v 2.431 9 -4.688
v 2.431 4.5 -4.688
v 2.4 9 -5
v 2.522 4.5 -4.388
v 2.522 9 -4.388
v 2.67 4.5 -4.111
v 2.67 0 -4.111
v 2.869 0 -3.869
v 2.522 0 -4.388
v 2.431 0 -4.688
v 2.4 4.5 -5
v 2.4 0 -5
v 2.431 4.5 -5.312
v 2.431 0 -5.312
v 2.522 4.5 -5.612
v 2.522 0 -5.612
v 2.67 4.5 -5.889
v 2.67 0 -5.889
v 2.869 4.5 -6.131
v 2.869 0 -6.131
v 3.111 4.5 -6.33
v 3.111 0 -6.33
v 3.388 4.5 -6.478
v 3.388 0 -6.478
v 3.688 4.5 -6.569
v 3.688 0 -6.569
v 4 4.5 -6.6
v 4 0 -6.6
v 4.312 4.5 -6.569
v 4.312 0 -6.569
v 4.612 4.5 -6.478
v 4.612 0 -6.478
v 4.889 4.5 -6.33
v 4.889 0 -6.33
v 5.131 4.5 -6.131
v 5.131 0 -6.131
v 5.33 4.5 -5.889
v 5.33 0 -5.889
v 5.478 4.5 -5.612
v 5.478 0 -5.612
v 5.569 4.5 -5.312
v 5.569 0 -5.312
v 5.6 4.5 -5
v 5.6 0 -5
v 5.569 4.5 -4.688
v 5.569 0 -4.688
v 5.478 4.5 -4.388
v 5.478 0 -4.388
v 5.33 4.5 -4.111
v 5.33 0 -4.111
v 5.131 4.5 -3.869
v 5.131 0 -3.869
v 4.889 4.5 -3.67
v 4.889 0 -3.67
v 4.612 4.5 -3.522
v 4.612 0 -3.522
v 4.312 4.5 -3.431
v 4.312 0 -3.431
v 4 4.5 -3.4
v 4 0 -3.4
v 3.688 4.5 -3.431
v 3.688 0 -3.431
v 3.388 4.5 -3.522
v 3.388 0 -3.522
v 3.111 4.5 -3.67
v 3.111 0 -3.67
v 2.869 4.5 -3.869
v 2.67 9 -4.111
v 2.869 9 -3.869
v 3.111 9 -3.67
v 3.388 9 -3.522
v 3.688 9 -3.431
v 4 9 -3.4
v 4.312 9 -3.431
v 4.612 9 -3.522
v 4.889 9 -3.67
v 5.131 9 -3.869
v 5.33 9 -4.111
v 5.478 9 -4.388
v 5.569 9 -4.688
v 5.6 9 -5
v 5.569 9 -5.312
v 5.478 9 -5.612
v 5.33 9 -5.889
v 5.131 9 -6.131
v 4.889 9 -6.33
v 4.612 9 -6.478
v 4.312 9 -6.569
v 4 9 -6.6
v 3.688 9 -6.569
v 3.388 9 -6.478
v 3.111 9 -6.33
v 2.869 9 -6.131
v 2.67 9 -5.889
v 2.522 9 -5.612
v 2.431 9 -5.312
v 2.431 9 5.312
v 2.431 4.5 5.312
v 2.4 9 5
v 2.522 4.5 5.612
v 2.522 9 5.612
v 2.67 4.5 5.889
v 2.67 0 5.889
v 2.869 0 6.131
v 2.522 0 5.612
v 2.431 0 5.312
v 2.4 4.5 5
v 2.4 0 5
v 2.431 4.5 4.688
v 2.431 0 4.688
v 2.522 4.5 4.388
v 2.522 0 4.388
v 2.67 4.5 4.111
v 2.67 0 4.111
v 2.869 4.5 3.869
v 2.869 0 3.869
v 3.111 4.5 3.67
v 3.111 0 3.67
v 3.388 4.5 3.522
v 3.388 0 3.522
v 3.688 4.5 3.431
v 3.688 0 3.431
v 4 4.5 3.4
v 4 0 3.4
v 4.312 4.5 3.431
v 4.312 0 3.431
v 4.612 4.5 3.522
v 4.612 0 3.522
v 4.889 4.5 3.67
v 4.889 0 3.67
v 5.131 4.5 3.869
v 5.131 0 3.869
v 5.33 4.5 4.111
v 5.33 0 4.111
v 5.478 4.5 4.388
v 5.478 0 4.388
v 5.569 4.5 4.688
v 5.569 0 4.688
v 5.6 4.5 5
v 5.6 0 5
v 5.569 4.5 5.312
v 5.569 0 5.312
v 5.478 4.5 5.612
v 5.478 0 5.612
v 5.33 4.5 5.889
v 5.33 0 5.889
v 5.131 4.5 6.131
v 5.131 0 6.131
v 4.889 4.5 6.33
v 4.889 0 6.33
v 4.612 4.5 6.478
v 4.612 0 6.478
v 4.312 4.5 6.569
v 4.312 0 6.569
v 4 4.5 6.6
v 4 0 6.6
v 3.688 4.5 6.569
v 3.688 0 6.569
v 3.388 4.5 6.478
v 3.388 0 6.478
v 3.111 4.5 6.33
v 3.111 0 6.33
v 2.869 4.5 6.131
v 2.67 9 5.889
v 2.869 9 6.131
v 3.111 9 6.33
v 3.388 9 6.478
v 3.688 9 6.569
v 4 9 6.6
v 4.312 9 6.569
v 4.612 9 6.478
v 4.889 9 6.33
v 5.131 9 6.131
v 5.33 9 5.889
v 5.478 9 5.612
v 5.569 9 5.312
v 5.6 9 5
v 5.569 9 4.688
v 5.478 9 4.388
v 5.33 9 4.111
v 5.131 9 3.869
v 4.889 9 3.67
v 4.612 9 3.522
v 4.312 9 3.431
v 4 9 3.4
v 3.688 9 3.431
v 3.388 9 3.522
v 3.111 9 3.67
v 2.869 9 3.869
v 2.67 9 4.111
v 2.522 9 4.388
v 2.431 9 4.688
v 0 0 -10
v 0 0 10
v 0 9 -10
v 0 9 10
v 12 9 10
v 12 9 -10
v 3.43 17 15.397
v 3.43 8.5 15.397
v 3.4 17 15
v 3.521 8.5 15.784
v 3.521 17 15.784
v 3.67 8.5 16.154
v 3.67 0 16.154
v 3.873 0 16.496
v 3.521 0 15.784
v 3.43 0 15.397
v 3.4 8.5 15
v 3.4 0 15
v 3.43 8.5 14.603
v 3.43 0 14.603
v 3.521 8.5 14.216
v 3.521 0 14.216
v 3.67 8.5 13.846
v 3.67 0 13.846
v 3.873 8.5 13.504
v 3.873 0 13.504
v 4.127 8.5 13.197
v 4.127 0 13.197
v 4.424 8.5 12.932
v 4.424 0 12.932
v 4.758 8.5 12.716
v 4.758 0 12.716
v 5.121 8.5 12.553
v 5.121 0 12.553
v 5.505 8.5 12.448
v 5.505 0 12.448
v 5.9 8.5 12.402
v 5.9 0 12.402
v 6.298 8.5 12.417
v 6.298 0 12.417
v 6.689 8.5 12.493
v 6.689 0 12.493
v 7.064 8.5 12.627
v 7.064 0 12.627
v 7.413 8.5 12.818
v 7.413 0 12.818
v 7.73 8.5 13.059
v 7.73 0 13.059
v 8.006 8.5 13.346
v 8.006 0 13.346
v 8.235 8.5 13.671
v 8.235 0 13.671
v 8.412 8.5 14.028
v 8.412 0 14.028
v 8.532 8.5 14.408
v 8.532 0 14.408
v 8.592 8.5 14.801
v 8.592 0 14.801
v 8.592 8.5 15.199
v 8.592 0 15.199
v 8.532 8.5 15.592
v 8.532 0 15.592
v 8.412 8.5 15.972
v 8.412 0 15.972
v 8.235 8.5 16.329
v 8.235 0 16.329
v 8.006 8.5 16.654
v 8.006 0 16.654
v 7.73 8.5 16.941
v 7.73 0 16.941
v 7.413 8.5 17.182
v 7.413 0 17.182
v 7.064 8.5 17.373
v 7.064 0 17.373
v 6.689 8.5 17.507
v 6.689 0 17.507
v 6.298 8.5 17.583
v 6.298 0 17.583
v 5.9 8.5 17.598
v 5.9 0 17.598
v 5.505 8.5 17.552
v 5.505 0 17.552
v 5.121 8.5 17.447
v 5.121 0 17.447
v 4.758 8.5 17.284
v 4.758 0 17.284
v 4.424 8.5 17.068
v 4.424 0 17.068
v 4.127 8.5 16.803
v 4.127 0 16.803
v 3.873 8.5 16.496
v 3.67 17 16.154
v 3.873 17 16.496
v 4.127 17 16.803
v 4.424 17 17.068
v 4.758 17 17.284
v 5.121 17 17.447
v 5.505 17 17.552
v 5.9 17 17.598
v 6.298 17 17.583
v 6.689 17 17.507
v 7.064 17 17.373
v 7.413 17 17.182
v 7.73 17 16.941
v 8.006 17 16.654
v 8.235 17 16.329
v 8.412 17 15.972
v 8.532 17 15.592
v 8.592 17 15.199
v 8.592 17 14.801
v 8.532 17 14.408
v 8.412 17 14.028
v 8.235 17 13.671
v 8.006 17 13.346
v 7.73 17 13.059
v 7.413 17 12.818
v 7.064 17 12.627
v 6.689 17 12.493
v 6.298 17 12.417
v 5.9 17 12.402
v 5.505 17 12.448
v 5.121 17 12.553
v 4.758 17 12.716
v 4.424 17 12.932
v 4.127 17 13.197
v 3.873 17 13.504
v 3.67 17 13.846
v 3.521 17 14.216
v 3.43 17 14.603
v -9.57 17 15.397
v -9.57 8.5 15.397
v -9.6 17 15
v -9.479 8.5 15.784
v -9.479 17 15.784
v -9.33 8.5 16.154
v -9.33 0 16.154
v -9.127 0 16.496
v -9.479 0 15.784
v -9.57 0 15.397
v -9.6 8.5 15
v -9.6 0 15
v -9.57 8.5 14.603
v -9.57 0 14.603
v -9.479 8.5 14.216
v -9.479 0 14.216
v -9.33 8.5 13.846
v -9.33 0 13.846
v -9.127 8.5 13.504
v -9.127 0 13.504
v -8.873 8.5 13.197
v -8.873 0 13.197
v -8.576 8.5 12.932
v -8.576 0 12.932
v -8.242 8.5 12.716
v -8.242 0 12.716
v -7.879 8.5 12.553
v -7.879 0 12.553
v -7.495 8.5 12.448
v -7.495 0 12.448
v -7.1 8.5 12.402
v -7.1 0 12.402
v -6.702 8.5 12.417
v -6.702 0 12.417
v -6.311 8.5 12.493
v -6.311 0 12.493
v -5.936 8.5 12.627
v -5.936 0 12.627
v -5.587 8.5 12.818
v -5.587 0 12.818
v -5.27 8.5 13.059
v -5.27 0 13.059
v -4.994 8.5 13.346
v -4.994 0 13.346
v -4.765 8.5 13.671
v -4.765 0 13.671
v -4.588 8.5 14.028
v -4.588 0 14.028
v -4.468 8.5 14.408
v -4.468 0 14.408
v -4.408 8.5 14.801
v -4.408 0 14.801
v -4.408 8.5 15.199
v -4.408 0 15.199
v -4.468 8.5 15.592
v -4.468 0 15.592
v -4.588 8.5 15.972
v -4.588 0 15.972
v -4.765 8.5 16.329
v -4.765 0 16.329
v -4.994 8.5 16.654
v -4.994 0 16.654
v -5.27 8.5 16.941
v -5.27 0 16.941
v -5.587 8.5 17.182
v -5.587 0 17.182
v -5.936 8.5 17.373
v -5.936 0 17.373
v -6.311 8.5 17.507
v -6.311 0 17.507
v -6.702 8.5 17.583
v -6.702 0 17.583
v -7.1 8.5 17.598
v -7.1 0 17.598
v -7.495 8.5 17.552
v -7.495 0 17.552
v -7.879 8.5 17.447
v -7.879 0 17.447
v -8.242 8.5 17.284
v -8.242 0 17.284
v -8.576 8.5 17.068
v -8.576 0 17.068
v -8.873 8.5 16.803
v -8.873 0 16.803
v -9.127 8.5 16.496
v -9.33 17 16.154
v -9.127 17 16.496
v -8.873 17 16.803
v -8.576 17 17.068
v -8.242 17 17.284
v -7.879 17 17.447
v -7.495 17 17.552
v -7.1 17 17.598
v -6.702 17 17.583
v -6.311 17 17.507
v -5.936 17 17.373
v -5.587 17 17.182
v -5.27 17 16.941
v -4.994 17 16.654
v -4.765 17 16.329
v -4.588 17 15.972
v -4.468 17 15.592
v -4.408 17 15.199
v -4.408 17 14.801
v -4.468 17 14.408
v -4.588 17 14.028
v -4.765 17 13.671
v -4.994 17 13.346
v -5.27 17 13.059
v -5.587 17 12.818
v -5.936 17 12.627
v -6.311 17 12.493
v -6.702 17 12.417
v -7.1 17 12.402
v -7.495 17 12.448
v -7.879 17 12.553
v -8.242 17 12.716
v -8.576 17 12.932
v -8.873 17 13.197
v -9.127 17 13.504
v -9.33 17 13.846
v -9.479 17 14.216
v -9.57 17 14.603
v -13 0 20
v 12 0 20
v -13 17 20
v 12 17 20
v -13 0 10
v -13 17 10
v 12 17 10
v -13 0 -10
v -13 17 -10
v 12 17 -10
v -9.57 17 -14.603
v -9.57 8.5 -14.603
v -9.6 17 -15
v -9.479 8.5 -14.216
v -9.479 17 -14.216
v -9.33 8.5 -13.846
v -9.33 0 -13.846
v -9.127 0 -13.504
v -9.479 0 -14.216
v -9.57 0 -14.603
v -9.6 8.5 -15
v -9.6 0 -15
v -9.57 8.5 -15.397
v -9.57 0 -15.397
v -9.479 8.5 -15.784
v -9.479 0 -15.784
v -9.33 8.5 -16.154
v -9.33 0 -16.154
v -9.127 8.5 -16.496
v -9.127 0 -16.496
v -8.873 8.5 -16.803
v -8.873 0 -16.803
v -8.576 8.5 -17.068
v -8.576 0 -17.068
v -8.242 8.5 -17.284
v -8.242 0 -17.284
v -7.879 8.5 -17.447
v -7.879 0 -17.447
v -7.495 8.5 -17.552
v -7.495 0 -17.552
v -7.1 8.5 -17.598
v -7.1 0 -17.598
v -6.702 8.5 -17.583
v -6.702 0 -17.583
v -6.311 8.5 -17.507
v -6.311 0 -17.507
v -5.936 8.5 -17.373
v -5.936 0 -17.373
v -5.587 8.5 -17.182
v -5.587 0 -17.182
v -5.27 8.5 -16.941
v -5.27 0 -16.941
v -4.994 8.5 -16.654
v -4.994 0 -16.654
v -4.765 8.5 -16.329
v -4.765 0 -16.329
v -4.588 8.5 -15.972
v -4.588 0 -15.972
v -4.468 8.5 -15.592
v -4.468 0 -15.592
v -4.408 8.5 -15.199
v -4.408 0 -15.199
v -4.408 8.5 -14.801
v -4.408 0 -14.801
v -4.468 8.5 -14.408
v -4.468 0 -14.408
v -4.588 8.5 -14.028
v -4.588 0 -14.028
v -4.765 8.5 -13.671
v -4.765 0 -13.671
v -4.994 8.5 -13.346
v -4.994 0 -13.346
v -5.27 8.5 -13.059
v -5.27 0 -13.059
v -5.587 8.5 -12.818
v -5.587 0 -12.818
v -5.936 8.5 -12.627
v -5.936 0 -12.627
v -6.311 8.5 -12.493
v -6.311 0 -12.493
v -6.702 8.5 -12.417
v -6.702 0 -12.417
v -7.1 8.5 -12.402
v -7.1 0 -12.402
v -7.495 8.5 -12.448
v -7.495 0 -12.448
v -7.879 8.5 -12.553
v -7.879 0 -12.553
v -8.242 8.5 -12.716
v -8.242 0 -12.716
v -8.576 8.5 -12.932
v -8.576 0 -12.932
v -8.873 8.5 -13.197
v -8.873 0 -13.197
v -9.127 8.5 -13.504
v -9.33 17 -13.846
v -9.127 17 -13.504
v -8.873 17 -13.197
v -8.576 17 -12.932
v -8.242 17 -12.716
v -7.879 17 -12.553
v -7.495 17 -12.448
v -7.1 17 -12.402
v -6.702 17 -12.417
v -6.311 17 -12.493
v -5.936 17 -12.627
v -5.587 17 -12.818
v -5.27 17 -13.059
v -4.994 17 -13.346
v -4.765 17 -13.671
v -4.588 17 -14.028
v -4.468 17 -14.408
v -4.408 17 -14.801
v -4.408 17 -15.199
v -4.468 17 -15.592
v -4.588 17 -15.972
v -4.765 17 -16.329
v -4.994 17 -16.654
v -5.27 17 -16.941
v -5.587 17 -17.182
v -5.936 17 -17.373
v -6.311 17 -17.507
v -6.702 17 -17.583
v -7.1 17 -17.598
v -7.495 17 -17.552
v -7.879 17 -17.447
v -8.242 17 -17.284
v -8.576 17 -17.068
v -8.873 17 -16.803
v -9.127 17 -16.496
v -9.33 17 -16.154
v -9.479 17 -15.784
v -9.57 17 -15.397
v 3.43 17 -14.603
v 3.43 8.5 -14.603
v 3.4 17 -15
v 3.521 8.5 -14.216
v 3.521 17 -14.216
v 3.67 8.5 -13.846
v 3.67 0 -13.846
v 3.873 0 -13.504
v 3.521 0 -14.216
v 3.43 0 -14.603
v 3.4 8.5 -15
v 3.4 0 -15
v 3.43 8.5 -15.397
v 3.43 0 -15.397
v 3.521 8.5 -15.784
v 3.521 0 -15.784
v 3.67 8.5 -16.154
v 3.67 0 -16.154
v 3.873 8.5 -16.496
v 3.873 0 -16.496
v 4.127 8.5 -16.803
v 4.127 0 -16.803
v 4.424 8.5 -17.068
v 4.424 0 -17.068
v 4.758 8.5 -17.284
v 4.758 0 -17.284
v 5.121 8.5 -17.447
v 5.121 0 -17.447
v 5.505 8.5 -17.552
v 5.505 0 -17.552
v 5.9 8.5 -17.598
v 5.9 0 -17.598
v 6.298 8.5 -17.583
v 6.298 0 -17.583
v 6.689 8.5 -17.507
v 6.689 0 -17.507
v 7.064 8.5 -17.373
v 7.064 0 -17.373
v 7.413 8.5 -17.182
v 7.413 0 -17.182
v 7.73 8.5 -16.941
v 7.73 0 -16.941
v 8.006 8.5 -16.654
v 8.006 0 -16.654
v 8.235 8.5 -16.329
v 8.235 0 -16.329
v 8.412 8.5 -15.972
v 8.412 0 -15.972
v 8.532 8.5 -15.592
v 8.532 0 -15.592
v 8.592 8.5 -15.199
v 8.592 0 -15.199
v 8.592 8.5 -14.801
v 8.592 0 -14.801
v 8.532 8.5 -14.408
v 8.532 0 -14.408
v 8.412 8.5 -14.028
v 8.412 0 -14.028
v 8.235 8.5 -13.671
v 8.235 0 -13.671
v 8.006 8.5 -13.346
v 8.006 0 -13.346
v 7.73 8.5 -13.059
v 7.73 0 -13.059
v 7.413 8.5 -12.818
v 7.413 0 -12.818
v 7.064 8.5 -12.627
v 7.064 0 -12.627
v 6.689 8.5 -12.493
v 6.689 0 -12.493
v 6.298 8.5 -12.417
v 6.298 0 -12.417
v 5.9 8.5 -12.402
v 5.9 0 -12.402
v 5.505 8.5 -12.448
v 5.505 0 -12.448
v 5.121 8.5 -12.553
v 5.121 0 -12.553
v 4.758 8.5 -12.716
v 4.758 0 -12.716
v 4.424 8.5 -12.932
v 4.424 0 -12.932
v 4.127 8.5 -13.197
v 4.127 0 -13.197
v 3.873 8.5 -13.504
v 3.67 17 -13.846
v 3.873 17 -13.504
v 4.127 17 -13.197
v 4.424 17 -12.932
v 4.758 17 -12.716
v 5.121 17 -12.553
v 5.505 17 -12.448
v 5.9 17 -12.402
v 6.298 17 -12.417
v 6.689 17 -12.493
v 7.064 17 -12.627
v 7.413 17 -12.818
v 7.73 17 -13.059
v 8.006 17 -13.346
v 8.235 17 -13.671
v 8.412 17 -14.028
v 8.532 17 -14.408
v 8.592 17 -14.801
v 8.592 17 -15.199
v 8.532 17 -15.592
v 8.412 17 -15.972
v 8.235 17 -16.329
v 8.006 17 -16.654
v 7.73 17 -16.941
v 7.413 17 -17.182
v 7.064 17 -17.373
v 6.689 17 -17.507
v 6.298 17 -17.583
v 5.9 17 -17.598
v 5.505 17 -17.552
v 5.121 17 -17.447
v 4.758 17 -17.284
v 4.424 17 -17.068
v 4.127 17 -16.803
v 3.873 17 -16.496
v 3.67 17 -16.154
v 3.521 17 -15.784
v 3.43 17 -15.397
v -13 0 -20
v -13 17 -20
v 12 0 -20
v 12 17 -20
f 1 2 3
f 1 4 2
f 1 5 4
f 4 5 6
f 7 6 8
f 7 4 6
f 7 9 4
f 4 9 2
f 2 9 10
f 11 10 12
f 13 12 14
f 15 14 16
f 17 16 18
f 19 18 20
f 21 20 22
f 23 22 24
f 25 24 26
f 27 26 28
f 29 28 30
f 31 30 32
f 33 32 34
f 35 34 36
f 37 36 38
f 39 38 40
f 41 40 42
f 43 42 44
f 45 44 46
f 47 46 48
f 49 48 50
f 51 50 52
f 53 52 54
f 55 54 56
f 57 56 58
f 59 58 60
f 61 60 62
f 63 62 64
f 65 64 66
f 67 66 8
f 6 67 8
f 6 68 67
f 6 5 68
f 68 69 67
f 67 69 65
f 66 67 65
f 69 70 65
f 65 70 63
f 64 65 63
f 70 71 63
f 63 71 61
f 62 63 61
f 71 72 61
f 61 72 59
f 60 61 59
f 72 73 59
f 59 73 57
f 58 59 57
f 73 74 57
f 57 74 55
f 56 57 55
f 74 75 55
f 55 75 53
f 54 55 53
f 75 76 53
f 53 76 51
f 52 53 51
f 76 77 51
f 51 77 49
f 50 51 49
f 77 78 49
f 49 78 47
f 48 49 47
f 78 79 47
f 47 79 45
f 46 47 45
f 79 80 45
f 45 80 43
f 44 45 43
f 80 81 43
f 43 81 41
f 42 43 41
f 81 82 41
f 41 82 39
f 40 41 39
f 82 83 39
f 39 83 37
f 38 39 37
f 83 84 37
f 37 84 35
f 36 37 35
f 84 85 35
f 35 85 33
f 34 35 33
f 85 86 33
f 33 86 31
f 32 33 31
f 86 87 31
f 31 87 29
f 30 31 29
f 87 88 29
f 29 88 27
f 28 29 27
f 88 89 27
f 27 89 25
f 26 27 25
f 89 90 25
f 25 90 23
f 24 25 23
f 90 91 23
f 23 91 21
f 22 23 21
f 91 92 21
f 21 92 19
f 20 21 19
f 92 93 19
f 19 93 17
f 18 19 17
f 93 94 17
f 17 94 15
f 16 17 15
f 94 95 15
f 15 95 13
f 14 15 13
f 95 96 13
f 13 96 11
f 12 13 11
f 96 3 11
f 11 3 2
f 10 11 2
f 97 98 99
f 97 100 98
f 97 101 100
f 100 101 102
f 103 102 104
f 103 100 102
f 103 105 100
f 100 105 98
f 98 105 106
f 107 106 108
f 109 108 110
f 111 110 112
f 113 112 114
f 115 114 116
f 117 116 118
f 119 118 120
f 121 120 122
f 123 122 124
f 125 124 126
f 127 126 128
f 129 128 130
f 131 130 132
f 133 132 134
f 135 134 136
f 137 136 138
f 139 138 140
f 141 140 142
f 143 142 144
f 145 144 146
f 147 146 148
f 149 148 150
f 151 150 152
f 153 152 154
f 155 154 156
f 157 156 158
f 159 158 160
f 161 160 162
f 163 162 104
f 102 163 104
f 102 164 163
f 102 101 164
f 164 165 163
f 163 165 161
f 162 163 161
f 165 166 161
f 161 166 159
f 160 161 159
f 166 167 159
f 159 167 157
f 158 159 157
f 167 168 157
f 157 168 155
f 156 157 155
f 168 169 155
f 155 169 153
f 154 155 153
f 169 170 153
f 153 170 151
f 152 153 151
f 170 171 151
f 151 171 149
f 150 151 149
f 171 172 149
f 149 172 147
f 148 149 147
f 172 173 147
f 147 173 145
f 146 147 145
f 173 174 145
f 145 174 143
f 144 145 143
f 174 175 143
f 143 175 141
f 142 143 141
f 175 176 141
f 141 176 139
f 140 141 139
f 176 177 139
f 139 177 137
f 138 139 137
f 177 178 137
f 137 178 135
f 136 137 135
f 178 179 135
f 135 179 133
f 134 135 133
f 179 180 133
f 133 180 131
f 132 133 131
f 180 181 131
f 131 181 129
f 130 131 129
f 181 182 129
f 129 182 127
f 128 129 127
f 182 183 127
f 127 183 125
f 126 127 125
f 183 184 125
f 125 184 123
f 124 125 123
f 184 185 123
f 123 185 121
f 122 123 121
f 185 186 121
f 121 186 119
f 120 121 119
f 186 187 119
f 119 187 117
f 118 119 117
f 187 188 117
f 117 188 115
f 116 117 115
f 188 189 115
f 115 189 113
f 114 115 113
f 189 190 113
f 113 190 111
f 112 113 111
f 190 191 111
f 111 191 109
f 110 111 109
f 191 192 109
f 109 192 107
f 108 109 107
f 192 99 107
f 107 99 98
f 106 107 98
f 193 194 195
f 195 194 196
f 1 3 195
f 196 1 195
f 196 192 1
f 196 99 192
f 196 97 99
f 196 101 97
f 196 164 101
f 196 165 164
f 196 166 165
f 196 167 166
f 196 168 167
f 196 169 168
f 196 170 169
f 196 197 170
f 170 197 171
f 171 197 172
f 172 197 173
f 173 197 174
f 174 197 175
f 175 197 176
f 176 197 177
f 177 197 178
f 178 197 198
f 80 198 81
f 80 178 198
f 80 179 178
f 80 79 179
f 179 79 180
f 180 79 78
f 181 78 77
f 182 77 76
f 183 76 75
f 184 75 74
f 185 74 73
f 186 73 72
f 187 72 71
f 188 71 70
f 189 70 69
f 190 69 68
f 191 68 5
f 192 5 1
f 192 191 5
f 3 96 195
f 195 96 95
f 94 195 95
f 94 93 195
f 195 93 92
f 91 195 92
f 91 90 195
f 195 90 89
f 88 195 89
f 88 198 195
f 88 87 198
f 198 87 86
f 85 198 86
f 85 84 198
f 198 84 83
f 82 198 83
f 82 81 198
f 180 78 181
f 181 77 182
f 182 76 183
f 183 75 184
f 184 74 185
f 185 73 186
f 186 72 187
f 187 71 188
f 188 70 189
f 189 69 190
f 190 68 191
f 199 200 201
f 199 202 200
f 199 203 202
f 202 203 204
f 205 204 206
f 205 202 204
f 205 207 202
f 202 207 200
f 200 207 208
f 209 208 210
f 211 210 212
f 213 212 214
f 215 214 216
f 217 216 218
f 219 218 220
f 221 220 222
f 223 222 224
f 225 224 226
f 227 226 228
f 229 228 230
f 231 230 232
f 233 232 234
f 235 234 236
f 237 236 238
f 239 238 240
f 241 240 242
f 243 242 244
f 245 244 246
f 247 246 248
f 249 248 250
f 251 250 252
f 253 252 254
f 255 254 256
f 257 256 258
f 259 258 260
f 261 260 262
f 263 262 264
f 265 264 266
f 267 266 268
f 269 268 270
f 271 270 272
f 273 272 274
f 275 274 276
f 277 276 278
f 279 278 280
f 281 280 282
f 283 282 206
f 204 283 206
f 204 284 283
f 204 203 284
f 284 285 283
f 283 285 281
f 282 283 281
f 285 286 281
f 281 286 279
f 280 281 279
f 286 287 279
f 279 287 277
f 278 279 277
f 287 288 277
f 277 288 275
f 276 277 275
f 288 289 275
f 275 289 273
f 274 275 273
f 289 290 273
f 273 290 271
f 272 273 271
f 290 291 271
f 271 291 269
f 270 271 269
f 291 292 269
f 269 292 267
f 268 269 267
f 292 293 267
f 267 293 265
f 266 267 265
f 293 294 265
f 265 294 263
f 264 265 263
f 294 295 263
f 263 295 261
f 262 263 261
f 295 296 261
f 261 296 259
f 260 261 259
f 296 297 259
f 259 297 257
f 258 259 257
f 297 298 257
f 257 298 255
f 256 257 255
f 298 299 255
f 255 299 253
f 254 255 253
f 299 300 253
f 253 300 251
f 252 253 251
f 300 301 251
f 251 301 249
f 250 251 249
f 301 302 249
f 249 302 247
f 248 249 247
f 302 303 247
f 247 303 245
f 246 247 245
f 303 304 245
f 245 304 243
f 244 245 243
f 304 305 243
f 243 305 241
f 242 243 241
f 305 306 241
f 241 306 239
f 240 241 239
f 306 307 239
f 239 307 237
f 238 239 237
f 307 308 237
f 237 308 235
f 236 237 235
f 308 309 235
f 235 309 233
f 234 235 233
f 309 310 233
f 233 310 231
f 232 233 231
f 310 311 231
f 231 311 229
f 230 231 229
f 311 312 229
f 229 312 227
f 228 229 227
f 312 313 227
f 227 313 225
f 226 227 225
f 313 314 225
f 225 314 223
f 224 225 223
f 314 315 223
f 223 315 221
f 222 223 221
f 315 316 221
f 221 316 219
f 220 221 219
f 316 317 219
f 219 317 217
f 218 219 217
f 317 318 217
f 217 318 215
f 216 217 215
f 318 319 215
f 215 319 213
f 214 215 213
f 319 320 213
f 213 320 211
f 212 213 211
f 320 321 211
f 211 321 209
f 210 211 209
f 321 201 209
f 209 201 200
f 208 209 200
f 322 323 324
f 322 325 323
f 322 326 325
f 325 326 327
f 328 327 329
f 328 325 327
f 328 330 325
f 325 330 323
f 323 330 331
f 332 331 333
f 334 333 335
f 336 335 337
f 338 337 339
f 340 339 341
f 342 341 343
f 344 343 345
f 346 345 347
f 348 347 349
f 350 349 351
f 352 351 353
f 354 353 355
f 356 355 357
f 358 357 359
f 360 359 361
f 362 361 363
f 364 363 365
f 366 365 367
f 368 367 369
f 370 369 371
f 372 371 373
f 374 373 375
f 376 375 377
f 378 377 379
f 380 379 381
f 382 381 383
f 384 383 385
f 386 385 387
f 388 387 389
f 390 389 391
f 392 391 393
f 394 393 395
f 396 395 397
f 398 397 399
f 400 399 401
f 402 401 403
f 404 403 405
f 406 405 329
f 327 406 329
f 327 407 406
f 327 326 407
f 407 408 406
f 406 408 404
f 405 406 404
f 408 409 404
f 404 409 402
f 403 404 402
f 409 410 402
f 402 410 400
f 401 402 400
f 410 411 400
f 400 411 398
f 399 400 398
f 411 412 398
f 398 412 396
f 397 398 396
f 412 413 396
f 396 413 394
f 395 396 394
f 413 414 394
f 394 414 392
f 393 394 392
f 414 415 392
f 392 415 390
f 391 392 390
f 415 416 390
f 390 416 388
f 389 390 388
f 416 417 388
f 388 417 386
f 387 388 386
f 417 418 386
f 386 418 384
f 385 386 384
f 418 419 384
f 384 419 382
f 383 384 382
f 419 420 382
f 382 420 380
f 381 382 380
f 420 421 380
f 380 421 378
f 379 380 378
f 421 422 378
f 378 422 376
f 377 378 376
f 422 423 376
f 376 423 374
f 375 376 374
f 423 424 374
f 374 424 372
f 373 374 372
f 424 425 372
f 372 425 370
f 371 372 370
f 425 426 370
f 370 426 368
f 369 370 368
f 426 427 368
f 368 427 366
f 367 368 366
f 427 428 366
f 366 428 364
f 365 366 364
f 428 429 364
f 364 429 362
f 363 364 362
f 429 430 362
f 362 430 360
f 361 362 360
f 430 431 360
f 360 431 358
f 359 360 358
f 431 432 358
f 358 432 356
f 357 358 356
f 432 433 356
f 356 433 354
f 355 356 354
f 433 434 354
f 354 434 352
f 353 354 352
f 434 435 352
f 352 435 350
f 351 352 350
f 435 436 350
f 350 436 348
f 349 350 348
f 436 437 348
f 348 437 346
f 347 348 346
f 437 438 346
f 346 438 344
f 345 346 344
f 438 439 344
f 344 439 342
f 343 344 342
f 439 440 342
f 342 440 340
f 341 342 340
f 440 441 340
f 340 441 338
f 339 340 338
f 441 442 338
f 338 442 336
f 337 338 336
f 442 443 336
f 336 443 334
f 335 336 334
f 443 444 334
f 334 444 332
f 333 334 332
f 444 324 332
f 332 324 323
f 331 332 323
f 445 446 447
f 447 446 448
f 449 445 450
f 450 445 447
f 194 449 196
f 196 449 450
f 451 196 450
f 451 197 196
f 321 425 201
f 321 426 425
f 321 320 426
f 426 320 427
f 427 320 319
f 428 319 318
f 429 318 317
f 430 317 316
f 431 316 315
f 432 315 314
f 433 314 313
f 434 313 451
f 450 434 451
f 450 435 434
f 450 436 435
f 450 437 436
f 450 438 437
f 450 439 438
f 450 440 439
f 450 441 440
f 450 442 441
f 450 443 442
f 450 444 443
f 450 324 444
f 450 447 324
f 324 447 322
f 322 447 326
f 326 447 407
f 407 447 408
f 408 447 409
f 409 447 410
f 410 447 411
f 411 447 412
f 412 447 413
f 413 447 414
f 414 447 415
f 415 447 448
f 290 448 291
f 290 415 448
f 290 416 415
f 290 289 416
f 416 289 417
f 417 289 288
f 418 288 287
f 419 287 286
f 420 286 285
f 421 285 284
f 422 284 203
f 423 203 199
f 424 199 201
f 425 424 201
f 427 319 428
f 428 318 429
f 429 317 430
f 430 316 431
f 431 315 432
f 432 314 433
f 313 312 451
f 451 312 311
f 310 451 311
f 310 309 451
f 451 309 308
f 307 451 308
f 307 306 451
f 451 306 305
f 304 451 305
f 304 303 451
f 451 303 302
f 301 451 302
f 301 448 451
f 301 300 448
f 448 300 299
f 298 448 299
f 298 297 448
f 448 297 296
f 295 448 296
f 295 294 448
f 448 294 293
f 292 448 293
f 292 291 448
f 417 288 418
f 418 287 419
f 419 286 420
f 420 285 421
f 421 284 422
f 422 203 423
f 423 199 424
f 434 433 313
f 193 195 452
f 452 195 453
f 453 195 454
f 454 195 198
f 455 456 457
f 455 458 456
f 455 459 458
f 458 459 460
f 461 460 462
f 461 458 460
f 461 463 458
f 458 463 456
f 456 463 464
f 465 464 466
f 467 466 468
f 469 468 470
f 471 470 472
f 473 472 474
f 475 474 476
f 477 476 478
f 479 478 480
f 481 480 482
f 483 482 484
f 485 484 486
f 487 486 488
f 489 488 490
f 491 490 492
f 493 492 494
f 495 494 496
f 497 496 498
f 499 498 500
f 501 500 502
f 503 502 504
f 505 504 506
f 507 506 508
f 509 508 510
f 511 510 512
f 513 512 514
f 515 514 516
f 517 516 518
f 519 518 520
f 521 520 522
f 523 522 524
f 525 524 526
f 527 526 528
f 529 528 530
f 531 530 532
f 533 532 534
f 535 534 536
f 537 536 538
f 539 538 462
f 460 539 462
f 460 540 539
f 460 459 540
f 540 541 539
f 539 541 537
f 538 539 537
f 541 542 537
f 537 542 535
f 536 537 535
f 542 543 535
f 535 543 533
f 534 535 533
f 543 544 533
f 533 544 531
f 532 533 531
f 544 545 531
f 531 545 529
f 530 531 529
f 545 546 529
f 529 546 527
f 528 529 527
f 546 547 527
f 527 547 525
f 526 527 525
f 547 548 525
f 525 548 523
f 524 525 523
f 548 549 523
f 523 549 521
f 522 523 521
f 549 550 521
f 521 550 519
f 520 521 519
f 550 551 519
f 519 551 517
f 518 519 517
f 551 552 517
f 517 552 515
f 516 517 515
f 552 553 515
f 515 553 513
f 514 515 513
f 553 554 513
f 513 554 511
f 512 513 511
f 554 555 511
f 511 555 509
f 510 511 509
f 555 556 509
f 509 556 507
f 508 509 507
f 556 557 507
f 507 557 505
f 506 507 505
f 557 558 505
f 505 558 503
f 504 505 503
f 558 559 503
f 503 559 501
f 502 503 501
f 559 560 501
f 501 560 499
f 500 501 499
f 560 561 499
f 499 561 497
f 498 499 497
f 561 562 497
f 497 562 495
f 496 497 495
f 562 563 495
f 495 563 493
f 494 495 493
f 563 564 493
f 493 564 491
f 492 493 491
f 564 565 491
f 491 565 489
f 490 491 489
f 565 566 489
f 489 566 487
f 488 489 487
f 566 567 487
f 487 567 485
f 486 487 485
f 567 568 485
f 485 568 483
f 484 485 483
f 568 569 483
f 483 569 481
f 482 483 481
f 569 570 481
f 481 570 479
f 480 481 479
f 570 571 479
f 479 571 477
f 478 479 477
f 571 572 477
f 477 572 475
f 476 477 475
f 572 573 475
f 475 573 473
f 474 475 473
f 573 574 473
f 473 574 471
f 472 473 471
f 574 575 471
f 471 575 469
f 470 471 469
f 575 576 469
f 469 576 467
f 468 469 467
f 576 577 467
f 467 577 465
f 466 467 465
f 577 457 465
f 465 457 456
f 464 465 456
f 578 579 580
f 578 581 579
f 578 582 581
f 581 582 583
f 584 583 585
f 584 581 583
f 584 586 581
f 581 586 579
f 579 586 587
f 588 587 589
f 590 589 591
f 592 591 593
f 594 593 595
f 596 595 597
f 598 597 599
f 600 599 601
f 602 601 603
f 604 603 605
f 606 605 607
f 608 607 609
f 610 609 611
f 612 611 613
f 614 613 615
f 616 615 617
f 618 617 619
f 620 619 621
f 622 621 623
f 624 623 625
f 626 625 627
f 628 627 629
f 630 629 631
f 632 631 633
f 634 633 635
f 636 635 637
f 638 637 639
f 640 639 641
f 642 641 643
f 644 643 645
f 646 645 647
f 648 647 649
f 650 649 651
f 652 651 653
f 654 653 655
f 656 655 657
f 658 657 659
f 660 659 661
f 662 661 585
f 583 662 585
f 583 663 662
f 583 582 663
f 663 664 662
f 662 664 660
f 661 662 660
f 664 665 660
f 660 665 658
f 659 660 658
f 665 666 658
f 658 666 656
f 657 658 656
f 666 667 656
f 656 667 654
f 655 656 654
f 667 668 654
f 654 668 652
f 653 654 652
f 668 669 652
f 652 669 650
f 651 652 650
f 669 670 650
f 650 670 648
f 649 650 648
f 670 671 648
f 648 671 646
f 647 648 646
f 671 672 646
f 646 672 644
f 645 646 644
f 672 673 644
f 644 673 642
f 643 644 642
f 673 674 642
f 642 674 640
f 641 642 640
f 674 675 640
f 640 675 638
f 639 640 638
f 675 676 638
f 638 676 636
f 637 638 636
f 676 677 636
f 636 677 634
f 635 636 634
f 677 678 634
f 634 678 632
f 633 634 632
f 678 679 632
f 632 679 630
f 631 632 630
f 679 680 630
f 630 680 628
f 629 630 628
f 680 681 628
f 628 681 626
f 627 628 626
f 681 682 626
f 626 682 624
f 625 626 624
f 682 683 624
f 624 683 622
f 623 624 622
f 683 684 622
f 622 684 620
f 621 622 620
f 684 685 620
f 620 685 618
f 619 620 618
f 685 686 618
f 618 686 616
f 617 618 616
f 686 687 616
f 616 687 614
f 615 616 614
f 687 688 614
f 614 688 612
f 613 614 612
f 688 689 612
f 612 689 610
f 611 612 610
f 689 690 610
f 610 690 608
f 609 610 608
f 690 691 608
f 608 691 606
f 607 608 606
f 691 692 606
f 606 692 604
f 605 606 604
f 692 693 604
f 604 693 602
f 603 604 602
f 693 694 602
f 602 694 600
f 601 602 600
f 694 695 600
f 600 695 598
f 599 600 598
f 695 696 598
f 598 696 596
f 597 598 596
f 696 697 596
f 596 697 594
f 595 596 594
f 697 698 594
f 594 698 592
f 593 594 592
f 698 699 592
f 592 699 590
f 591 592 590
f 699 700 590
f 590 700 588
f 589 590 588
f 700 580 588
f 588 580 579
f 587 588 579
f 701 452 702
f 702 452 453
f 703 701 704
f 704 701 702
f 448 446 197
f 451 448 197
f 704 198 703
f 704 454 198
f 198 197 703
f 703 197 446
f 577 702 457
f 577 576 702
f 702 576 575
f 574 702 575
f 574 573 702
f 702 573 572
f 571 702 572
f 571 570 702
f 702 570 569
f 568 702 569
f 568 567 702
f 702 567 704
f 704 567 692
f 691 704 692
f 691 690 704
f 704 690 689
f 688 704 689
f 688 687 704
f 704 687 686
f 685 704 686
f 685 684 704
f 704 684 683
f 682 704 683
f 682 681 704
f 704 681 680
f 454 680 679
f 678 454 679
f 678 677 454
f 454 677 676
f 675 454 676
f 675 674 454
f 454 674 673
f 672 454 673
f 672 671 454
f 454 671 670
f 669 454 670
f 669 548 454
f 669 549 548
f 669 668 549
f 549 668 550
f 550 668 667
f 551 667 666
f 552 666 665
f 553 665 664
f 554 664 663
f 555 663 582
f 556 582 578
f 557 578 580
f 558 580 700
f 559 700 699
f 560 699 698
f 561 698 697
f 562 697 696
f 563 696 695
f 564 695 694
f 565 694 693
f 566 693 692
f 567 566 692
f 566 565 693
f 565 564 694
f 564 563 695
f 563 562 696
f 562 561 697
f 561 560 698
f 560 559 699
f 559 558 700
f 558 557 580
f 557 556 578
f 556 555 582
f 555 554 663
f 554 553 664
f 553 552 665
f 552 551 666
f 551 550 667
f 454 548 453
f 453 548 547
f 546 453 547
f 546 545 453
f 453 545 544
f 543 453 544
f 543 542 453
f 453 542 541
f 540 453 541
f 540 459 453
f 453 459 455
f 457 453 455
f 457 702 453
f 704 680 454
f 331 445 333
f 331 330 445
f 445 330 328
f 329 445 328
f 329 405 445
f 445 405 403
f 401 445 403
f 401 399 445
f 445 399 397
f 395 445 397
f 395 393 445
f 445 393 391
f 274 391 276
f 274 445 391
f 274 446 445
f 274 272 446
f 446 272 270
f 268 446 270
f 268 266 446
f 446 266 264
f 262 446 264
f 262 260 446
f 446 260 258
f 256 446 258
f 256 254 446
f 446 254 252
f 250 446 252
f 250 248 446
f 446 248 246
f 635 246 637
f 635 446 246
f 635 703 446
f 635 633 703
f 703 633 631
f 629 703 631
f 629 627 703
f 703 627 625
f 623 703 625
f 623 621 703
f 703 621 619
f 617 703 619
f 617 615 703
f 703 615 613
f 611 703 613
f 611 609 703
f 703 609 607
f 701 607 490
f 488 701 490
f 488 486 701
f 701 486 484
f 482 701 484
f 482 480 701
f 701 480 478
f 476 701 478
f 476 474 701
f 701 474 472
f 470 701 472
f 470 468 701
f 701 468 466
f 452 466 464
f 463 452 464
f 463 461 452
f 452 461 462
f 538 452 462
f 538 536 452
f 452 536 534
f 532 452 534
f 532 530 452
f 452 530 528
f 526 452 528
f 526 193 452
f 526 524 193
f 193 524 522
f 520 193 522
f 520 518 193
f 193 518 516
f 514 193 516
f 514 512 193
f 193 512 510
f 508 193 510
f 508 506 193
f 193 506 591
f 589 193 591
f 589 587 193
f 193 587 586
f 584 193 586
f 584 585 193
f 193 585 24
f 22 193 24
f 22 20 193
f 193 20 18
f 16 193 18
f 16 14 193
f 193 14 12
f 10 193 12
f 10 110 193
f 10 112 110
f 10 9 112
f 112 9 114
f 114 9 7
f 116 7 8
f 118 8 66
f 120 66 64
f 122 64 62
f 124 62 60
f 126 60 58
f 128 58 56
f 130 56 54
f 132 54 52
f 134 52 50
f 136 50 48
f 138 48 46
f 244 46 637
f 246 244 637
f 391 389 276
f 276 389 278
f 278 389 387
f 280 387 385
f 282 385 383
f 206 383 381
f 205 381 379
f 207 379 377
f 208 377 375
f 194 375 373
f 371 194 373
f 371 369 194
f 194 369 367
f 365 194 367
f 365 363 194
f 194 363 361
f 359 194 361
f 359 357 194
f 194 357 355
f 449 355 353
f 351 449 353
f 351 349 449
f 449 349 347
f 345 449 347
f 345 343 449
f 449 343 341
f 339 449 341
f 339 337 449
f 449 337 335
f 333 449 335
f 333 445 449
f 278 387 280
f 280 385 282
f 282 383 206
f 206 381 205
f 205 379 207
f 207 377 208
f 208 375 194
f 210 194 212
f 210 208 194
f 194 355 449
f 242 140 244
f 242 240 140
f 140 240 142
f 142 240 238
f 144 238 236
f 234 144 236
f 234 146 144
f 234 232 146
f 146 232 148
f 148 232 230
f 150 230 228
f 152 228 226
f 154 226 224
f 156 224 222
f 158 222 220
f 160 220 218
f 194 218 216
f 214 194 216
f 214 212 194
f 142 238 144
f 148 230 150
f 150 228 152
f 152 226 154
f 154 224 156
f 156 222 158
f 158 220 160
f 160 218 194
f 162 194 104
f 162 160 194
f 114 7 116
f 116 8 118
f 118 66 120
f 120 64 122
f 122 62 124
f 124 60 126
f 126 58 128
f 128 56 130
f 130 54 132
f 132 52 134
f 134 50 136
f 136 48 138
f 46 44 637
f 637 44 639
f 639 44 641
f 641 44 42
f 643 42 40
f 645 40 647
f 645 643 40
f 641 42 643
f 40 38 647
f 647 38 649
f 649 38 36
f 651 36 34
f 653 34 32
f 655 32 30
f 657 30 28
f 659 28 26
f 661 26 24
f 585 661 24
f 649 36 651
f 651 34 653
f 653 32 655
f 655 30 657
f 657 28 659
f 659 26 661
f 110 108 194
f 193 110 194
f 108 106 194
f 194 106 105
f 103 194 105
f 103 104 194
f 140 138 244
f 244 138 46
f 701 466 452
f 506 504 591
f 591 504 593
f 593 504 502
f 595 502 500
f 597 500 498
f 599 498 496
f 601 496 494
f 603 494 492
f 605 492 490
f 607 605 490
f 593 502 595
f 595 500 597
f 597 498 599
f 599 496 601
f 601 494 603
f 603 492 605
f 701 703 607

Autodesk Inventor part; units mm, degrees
ref_plane "YZ Plane" through (0, 0, 0) normal (1, 0, 0) x (0, 1, 0)
ref_plane "XZ Plane" through (0, 0, 0) normal (0, 1, 0) x (-1, 0, 0)
ref_plane "XY Plane" through (0, 0, 0) normal (0, 0, 1) x (1, 0, 0)
sketch "Sketch1" plane through (0, 0, 0) normal (0, 1, 0) x (-1, 0, 0)
  line L0 (0, 0) -> (0, -10)
  line L1 (0, 0) -> (0, 10)
  line L2 (0, 10) -> (13, 10)
  line L3 (13, 10) -> (13, 20)
  line L4 (13, 20) -> (-12, 20)
  line L5 (0, -10) -> (13, -10)
  line L6 (13, -10) -> (13, -20)
  line L7 (13, -20) -> (-12, -20)
  line L8 (-12, -20) -> (-12, 20)
  line L9 (-12, 15) -> (-6, 15)
  line L10 (13, 15) -> (7, 15)
  line L11 (13, -15) -> (7, -15)
  line L12 (-12, -15) -> (-6, -15)
  circle A0 centre (7, 15) radius 2.6
  circle A1 centre (-6, 15) radius 2.6
  circle A2 centre (-6, -15) radius 2.6
  circle A3 centre (7, -15) radius 2.6
  line L13 (0, 0) -> (-4, 0)
  line L14 (-4, 0) -> (-4, -5)
  line L15 (-4, 0) -> (-4, 5)
  circle A4 centre (-4, 5) radius 1.6
  circle A5 centre (-4, -5) radius 1.6
  line L16 (0, 10) -> (-12, 10)
  line L17 (0, -10) -> (-12, -10)
  line L18 (13, -15) -> (9.6, -15)
  line L19 (-8.6, -15) -> (-12, -15)
  line L20 (13, 15) -> (9.6, 15)
  line L21 (-8.6, 15) -> (-12, 15)
  dimension "d12" = 5.2
  dimension "d13" = 5.2
  dimension "d14" = 5.2
  dimension "d15" = 5.2
  dimension "d0" = 10
  dimension "d1" = 10
  dimension "d2" = 13
  dimension "d3" = 10
  dimension "d4" = 25
  dimension "d5" = 13
  dimension "d6" = 10
  dimension "d7" = 25
  dimension "d8" = 6
  dimension "d9" = 6
  dimension "d10" = 6
  dimension "d11" = 6
  dimension "d16" = 4
  dimension "d17" = 5
  dimension "d18" = 5
  dimension "d19" = 3.2
  dimension "d20" = 3.2
extrude "Extrusion1" add sketch "Sketch1" along normal blind 17 contours L5 L6 L7 L8 L17 | L16 L8 L4 L3 L2
extrude "Extrusion2" add sketch "Sketch1" along normal blind 9 contours L0 L17 L8 L16 L1
properties part number "servo_clip_holder1_final"
